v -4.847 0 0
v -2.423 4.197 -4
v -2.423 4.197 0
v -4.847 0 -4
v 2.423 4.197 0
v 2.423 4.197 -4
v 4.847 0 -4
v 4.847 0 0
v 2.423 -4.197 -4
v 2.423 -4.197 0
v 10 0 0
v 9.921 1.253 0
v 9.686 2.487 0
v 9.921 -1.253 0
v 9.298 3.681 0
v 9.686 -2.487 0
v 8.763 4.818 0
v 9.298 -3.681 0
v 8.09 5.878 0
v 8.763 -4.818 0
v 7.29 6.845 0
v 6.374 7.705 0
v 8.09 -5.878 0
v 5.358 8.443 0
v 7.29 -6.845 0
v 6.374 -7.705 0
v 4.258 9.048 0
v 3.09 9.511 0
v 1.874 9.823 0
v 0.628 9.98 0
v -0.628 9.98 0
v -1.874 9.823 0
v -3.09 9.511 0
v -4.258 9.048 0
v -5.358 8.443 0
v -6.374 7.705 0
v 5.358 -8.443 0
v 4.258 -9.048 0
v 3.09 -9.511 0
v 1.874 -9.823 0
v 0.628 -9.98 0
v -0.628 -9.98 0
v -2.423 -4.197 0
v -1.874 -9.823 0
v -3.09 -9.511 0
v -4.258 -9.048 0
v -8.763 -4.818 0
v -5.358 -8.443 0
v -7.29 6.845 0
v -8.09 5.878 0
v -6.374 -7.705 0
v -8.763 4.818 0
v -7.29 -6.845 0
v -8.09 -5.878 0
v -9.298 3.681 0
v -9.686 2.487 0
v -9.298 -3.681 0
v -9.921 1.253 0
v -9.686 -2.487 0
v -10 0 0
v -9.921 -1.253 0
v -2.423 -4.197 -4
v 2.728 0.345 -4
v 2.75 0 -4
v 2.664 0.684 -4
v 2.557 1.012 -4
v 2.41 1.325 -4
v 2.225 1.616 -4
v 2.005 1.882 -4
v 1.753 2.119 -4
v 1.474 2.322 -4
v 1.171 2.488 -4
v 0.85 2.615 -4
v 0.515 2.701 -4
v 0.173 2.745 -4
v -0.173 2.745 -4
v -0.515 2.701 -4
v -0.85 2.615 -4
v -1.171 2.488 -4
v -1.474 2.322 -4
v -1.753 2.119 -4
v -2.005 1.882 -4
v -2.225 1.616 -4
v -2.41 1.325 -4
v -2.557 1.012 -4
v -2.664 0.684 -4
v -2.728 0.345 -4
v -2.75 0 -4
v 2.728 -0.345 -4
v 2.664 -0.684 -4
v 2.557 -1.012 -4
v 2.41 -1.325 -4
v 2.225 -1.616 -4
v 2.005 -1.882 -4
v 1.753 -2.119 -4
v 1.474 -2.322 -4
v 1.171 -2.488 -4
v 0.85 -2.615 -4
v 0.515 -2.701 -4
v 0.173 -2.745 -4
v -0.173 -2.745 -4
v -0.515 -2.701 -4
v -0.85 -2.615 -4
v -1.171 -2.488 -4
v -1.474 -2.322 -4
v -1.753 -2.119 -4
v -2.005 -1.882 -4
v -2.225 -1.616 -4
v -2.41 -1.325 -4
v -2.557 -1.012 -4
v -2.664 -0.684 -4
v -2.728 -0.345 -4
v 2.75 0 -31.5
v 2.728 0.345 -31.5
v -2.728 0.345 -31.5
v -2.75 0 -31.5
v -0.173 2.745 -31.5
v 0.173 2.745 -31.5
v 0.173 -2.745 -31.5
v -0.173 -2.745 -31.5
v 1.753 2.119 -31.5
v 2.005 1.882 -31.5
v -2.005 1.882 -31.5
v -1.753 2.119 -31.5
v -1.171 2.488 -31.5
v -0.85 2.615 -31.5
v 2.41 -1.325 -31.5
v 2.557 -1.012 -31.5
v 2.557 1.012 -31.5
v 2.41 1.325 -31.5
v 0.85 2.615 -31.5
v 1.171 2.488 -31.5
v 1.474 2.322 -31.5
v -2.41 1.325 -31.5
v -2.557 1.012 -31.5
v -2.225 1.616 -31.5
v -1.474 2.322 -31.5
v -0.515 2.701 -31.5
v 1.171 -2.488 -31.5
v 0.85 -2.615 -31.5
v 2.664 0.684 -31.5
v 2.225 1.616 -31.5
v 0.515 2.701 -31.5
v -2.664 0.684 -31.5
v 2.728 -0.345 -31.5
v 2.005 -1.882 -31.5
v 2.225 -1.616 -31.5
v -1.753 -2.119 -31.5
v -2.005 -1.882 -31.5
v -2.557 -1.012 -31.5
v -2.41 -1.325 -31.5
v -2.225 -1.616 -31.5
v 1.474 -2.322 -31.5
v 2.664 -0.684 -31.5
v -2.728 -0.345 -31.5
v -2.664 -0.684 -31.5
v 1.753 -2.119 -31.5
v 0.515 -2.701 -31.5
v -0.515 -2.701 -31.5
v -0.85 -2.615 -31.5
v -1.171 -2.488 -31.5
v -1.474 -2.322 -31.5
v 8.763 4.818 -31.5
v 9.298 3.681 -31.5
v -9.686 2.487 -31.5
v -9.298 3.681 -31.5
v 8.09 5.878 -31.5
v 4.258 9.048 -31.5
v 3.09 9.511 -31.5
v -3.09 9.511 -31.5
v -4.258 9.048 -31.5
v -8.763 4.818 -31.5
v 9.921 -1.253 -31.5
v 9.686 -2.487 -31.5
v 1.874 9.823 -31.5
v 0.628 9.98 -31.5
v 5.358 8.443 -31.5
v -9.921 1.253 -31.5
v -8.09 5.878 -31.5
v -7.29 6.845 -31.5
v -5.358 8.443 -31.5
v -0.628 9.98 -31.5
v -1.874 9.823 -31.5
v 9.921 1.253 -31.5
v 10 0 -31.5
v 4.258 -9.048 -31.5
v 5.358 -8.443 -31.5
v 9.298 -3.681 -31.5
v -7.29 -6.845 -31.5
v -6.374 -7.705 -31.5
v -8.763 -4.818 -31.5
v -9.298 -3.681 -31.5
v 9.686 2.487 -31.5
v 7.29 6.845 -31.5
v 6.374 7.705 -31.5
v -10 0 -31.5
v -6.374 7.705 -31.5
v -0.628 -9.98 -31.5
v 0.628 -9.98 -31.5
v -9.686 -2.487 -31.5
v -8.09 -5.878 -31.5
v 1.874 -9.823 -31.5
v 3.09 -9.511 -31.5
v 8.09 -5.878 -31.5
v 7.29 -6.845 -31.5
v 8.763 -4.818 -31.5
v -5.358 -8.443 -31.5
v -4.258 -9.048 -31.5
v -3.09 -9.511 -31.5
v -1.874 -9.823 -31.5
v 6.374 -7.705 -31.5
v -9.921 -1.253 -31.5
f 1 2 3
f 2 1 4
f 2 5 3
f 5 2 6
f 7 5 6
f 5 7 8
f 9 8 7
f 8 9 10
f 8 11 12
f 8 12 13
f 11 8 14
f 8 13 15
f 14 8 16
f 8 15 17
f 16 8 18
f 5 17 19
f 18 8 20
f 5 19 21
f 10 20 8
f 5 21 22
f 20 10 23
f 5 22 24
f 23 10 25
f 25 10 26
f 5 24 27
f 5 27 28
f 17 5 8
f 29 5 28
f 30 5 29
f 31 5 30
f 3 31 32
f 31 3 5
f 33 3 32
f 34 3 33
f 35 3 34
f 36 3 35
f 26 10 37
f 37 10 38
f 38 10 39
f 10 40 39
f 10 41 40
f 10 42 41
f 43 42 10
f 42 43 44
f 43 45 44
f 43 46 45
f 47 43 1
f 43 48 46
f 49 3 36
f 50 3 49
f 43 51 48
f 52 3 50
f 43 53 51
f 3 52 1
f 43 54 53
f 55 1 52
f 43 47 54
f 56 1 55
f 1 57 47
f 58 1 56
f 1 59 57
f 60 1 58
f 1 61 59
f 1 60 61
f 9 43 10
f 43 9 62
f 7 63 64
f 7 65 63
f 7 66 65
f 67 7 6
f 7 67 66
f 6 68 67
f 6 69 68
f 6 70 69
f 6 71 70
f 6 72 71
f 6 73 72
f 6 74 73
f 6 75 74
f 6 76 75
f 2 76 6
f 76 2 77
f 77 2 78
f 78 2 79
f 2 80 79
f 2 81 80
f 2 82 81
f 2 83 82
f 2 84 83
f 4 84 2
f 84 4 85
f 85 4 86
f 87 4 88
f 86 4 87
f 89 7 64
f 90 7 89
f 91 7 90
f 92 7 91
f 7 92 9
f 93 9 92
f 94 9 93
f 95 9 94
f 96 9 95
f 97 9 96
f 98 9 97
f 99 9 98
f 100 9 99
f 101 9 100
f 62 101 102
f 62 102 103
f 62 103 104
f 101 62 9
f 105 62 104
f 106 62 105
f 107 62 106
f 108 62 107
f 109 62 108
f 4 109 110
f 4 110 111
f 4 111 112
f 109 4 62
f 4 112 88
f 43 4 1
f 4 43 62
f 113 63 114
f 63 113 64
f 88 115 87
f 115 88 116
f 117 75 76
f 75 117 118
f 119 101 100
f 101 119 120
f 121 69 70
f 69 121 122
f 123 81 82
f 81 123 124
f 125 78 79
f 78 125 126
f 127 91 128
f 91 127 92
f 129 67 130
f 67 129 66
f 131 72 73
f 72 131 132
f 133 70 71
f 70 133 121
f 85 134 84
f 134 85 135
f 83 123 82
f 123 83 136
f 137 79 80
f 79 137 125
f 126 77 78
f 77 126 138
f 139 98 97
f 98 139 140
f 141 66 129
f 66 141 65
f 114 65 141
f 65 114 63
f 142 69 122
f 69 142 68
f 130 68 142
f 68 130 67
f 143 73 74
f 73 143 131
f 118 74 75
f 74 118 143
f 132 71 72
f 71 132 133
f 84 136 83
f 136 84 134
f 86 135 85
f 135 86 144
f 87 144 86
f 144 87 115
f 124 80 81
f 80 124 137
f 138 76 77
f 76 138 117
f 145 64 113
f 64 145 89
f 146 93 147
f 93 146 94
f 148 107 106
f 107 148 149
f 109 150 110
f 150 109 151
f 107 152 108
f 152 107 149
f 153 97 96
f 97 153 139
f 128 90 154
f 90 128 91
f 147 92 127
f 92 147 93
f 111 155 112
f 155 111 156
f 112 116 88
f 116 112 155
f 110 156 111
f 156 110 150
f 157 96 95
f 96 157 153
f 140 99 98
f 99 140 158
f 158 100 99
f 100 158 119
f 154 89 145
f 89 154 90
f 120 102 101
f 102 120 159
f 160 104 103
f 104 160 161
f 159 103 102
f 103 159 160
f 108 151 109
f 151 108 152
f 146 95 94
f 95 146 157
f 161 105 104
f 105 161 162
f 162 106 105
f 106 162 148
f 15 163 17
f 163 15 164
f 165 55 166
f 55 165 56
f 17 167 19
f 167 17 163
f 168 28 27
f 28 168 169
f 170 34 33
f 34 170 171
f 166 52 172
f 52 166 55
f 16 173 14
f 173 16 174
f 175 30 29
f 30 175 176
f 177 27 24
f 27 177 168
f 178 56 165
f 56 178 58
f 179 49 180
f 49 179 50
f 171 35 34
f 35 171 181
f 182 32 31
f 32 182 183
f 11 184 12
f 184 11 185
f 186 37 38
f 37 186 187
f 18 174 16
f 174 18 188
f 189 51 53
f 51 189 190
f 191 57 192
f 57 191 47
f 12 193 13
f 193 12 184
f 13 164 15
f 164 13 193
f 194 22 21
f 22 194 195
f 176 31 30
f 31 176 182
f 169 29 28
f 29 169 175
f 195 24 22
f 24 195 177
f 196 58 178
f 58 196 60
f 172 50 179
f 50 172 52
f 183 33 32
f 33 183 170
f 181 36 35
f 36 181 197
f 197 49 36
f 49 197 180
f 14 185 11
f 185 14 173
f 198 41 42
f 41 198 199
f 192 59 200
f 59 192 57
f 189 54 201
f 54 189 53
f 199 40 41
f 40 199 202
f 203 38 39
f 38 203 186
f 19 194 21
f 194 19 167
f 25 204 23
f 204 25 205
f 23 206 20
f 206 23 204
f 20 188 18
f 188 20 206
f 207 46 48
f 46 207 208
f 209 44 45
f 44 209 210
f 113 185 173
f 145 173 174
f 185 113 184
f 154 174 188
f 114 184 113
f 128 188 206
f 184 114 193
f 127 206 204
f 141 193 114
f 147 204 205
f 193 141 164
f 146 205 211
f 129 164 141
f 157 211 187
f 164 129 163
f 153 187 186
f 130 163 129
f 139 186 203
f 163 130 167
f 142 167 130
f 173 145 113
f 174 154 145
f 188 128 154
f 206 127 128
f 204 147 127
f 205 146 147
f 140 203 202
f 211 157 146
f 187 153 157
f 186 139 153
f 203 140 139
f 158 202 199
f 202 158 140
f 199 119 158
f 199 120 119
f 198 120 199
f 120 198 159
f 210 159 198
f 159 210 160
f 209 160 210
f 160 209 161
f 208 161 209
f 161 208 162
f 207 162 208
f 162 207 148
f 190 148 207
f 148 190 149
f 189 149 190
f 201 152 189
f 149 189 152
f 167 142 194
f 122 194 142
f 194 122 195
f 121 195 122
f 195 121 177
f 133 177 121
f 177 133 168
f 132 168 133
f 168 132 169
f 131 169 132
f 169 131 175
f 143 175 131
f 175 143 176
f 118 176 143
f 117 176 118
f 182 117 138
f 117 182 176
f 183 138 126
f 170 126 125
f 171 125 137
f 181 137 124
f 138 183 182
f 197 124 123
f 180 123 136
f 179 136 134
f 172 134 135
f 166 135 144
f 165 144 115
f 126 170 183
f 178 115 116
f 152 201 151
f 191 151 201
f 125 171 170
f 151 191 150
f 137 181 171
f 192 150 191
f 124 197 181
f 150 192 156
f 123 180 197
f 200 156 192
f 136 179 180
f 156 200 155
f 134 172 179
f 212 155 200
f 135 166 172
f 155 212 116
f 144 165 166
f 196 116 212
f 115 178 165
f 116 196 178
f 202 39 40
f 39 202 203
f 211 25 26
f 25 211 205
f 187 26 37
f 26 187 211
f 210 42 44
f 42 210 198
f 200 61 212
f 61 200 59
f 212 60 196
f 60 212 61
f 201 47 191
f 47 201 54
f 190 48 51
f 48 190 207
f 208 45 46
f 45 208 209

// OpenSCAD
$fn = 50;

difference() {
	union() {
		translate(v = [0, 0, -31.5]) {
			cylinder(h = 31.5, r = 10.0);
		}
	}
	union() {
		translate(v = [0, 0, 0]) {
			rotate(a = [0, 0, 0]) {
				difference() {
					union() {
						translate(v = [0, 0, -4]) {
							linear_extrude(height = 4) {
								polygon(points = [[4.8468, 0.0], [2.4234000000000004, 4.197451927062417], [-2.423399999999999, 4.197451927062417], [-4.8468, 5.935618106107392e-16], [-2.423400000000002, -4.197451927062416], [2.423399999999997, -4.197451927062419]]);
							}
						}
					}
					union();
				}
			}
		}
		#translate(v = [0, 0, -100.0]) {
			cylinder(h = 200, r = 2.75);
		}
	}
}
